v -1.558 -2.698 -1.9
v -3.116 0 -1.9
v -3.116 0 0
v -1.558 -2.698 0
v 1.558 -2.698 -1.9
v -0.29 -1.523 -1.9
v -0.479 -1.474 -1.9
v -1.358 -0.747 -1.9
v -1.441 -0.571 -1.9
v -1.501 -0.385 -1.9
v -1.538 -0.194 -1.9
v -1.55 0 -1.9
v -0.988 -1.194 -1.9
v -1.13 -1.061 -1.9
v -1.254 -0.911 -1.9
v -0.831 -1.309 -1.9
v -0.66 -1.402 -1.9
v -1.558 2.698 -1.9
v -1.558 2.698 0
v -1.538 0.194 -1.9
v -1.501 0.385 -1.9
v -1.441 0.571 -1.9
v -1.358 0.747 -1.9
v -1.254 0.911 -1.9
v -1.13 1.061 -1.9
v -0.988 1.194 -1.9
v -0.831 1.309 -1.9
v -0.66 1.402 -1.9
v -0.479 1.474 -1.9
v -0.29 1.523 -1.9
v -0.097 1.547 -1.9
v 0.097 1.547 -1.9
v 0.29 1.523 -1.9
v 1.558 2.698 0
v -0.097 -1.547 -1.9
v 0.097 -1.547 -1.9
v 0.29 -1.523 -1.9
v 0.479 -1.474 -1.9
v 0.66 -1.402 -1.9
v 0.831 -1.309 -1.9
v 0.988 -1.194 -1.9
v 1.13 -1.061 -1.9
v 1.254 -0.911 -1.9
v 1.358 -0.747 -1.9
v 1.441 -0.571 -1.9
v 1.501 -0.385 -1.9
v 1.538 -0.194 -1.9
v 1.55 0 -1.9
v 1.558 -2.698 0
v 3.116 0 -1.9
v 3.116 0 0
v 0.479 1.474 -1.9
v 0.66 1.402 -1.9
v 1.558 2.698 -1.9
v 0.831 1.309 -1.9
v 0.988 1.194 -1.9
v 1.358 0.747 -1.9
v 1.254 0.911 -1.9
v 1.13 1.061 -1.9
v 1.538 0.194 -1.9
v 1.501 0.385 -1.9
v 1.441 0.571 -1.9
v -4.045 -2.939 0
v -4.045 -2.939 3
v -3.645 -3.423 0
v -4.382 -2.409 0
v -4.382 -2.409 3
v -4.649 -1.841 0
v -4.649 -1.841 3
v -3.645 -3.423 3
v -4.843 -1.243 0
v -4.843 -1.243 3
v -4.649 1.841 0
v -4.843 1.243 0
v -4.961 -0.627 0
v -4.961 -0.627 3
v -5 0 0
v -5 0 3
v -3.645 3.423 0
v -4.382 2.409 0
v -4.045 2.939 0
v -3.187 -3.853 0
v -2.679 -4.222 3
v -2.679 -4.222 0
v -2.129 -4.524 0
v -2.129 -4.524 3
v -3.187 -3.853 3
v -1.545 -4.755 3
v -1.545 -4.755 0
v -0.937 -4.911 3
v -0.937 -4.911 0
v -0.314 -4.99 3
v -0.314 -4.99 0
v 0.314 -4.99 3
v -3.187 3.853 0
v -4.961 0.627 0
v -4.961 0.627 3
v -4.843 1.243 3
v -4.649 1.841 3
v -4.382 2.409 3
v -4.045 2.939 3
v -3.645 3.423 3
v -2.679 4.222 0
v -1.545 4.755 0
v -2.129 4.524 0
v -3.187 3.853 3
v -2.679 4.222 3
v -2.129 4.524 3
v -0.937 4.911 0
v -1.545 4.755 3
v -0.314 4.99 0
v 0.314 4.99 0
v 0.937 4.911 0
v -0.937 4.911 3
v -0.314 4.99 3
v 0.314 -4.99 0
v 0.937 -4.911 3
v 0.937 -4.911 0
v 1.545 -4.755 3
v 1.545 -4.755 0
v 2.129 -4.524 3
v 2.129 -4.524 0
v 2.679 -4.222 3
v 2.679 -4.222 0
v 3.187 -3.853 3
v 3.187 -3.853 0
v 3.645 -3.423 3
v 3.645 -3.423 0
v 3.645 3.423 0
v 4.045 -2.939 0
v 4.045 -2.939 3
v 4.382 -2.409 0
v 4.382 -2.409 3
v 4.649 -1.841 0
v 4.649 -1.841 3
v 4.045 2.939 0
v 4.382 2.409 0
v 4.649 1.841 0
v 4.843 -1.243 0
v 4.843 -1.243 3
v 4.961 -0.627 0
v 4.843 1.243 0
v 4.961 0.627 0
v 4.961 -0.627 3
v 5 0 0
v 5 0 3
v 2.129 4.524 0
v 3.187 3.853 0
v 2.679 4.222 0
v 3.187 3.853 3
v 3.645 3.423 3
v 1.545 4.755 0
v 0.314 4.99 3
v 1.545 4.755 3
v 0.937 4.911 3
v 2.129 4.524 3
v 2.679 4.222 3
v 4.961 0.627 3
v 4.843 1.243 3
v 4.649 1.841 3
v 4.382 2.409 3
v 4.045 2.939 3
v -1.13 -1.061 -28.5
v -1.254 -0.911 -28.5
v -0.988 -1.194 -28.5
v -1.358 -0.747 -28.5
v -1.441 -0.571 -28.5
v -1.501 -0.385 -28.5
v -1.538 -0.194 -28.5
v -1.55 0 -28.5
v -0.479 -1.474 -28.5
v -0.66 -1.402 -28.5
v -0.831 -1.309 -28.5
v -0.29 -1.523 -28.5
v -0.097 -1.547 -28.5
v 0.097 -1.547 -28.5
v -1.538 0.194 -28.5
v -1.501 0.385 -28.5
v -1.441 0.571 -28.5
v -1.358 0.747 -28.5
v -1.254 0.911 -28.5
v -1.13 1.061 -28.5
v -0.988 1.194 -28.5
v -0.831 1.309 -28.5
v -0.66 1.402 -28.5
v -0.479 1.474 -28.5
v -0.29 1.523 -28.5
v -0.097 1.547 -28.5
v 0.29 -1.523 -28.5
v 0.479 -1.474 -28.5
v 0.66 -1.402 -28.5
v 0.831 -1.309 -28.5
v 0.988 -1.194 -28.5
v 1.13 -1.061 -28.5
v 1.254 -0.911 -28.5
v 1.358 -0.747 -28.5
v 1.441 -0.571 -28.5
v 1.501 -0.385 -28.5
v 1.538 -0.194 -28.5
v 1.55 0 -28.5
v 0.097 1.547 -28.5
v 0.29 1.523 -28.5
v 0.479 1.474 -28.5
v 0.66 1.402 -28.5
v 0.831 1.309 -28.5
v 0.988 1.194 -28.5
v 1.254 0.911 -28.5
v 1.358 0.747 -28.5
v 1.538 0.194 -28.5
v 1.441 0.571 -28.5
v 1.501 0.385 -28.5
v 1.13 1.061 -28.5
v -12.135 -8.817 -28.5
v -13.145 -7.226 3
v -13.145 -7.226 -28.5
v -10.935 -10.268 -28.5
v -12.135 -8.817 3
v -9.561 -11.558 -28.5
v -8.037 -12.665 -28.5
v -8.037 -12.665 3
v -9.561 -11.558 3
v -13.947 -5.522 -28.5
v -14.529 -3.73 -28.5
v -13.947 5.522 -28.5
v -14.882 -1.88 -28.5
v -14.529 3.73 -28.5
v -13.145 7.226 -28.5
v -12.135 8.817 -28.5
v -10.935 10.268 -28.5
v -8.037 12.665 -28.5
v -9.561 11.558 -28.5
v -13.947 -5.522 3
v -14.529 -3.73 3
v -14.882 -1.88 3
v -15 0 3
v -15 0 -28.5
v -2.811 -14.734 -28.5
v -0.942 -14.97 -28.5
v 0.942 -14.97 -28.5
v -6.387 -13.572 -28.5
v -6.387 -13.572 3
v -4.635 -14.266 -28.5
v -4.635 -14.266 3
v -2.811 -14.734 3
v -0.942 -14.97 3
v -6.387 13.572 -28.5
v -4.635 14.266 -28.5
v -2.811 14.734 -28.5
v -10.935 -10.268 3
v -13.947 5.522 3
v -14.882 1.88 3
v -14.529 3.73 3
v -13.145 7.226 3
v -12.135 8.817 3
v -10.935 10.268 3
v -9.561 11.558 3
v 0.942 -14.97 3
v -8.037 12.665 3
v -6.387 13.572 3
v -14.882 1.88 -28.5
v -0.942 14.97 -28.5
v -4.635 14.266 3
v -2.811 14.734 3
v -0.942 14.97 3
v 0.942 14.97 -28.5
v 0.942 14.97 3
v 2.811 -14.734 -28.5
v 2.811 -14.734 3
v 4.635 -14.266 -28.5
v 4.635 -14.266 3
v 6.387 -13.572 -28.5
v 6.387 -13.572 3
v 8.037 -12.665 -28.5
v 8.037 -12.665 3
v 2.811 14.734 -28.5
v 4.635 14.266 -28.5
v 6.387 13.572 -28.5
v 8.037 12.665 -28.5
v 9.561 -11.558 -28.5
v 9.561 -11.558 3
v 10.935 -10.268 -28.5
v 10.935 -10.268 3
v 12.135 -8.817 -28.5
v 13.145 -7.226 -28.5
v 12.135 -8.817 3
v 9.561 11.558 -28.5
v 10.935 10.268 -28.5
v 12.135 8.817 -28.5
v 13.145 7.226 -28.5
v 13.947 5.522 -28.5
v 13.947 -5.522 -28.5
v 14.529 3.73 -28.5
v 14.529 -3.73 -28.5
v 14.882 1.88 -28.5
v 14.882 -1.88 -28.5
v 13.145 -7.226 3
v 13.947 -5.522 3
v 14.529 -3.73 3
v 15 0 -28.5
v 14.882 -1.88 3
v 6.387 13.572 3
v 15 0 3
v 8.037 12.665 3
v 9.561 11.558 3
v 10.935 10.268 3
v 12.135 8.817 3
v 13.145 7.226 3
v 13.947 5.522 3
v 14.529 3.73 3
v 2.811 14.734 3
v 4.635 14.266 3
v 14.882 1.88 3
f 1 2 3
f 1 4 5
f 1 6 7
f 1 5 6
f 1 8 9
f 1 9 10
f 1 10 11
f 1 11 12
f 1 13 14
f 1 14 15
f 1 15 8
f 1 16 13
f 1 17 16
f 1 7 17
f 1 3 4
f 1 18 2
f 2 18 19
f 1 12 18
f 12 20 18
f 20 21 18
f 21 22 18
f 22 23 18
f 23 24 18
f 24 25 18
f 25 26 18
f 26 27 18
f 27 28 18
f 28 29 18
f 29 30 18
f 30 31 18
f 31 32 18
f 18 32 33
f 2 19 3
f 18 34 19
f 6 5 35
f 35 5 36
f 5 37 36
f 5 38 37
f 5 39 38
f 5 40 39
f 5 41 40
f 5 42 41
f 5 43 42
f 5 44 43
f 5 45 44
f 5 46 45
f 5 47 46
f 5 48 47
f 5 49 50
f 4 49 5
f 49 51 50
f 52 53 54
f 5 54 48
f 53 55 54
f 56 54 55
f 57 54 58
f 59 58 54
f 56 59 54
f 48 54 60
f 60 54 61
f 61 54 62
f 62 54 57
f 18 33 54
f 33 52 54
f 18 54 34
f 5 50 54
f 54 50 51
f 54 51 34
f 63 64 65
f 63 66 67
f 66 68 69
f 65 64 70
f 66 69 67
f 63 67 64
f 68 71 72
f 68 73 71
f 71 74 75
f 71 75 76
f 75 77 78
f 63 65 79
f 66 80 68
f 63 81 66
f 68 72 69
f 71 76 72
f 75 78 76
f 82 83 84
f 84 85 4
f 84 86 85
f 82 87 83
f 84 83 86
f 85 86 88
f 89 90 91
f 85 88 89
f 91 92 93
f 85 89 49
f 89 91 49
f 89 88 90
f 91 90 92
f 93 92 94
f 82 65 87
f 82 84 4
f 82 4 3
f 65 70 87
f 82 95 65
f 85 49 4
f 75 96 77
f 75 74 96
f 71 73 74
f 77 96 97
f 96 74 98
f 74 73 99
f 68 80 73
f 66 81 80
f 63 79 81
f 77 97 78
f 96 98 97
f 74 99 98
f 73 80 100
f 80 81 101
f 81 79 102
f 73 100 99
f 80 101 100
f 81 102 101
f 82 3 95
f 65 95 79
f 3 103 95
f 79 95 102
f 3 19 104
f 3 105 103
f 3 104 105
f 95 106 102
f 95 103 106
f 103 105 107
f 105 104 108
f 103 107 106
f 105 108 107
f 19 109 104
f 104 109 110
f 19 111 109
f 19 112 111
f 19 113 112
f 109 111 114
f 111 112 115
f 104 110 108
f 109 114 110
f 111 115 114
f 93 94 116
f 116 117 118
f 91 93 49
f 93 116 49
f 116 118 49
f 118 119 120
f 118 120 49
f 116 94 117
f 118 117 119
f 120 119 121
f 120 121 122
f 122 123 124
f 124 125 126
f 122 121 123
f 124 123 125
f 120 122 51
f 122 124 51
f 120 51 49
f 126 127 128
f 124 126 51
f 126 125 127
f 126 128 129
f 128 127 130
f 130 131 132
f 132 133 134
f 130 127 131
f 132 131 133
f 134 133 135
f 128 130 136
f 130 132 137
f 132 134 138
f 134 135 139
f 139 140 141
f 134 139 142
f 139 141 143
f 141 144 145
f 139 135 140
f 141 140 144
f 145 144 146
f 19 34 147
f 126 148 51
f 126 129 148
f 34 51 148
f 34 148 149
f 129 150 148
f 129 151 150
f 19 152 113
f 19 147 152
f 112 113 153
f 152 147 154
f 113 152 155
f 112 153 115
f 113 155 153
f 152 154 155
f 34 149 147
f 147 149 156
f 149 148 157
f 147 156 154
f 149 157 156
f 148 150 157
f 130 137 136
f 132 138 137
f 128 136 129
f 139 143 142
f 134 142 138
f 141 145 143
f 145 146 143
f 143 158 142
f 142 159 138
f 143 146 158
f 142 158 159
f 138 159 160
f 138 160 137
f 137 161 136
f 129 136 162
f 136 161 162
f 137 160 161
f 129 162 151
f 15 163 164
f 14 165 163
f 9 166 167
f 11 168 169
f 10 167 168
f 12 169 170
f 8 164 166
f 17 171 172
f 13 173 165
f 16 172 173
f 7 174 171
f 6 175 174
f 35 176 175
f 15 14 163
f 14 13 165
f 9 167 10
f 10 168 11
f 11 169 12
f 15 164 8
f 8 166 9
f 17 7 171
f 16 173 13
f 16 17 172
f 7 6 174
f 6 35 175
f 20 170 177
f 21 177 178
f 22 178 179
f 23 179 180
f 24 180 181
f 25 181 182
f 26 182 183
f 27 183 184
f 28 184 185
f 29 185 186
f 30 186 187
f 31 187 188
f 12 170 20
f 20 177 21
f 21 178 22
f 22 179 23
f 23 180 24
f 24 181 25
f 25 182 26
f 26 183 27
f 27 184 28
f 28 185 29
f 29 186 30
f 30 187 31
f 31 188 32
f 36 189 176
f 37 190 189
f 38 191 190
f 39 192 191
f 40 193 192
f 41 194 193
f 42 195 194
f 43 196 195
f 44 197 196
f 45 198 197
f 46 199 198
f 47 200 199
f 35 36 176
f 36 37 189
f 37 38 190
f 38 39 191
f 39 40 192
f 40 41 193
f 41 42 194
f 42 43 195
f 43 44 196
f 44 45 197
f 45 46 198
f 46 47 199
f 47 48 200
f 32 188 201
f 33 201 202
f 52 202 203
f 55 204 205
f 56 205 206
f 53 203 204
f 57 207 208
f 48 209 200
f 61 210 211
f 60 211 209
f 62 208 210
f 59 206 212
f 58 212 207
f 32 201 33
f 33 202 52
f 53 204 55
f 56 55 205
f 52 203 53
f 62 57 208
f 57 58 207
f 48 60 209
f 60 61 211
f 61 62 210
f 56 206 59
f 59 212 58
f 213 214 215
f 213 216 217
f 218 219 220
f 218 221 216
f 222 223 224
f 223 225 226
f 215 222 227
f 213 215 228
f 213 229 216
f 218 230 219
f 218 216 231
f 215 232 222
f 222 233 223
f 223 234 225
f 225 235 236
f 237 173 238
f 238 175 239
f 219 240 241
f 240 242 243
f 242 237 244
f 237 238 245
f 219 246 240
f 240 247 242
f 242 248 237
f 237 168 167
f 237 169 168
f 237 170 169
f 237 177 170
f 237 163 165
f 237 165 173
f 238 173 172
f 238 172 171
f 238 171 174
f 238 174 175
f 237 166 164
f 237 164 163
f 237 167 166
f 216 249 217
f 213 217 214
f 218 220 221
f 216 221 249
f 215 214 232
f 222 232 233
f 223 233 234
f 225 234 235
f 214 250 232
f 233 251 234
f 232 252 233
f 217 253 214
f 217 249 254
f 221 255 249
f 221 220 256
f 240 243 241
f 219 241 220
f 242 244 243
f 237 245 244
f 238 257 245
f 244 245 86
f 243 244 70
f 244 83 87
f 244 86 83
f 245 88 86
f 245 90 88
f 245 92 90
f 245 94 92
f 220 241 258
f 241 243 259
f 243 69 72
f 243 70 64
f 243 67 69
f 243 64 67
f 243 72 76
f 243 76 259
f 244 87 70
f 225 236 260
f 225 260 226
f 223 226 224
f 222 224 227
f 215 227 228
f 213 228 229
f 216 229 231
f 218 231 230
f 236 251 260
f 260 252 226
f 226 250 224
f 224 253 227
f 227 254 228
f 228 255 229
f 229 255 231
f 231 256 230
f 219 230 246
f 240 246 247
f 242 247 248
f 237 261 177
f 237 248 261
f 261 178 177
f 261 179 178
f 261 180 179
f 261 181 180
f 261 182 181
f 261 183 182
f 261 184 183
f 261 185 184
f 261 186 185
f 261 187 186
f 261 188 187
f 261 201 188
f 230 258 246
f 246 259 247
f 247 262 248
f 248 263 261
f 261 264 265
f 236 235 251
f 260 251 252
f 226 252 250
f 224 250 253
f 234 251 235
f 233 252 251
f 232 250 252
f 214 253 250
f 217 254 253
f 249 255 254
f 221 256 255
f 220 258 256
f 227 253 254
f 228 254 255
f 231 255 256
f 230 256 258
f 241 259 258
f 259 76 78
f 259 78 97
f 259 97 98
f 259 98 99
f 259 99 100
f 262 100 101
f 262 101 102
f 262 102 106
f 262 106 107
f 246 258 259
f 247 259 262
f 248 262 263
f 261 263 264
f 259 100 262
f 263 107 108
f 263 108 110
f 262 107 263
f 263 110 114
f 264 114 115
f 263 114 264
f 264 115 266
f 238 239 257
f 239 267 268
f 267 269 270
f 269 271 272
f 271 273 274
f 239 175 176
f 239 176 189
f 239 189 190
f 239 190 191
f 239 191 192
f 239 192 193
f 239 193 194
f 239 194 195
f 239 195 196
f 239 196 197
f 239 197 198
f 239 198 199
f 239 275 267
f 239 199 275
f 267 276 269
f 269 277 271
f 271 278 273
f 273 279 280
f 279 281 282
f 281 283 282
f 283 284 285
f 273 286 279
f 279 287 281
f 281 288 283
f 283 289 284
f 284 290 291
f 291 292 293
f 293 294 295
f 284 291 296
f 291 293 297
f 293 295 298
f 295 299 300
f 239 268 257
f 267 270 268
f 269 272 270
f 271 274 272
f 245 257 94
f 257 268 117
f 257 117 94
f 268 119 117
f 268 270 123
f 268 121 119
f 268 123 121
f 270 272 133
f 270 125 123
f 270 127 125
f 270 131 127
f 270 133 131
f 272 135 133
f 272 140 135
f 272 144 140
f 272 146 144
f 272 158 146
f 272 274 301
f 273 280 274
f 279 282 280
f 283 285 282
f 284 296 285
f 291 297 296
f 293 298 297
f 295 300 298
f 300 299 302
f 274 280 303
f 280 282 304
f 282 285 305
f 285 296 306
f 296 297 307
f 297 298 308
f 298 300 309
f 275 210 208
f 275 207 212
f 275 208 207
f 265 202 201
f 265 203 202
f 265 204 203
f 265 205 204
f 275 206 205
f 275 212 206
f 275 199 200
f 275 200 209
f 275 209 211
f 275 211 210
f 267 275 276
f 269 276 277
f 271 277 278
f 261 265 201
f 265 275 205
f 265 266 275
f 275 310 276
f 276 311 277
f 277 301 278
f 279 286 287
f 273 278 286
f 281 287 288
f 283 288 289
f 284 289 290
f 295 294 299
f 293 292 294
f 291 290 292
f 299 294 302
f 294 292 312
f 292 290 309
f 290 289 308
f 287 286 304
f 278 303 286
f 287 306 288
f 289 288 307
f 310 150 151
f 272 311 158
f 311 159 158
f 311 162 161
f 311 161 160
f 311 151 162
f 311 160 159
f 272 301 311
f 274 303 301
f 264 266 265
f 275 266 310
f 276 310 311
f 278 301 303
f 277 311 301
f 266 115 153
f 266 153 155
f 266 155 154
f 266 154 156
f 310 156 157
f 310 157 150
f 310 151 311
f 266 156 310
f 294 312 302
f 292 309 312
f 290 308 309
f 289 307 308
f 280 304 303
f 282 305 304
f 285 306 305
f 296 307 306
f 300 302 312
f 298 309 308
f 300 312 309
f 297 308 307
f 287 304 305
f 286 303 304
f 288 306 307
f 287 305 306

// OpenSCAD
$fn = 50;


difference() {
	union() {
		translate(v = [0, 0, -28.5000000000]) {
			cylinder(h = 31.5000000000, r = 15.0000000000);
		}
	}
	union() {
		translate(v = [0, 0, 0]) {
			rotate(a = [0, 0, 0]) {
				difference() {
					union() {
						translate(v = [0, 0, -1.9000000000]) {
							linear_extrude(height = 1.9000000000) {
								polygon(points = [[3.1158000000, 0.0000000000], [1.5579000000, 2.6983619531], [-1.5579000000, 2.6983619531], [-3.1158000000, 0.0000000000], [-1.5579000000, -2.6983619531], [1.5579000000, -2.6983619531]]);
							}
						}
					}
					union();
				}
			}
		}
		#cylinder(h = 3, r = 5.0000000000);
		#translate(v = [0, 0, -100.0000000000]) {
			cylinder(h = 200, r = 1.5500000000);
		}
	}
}
